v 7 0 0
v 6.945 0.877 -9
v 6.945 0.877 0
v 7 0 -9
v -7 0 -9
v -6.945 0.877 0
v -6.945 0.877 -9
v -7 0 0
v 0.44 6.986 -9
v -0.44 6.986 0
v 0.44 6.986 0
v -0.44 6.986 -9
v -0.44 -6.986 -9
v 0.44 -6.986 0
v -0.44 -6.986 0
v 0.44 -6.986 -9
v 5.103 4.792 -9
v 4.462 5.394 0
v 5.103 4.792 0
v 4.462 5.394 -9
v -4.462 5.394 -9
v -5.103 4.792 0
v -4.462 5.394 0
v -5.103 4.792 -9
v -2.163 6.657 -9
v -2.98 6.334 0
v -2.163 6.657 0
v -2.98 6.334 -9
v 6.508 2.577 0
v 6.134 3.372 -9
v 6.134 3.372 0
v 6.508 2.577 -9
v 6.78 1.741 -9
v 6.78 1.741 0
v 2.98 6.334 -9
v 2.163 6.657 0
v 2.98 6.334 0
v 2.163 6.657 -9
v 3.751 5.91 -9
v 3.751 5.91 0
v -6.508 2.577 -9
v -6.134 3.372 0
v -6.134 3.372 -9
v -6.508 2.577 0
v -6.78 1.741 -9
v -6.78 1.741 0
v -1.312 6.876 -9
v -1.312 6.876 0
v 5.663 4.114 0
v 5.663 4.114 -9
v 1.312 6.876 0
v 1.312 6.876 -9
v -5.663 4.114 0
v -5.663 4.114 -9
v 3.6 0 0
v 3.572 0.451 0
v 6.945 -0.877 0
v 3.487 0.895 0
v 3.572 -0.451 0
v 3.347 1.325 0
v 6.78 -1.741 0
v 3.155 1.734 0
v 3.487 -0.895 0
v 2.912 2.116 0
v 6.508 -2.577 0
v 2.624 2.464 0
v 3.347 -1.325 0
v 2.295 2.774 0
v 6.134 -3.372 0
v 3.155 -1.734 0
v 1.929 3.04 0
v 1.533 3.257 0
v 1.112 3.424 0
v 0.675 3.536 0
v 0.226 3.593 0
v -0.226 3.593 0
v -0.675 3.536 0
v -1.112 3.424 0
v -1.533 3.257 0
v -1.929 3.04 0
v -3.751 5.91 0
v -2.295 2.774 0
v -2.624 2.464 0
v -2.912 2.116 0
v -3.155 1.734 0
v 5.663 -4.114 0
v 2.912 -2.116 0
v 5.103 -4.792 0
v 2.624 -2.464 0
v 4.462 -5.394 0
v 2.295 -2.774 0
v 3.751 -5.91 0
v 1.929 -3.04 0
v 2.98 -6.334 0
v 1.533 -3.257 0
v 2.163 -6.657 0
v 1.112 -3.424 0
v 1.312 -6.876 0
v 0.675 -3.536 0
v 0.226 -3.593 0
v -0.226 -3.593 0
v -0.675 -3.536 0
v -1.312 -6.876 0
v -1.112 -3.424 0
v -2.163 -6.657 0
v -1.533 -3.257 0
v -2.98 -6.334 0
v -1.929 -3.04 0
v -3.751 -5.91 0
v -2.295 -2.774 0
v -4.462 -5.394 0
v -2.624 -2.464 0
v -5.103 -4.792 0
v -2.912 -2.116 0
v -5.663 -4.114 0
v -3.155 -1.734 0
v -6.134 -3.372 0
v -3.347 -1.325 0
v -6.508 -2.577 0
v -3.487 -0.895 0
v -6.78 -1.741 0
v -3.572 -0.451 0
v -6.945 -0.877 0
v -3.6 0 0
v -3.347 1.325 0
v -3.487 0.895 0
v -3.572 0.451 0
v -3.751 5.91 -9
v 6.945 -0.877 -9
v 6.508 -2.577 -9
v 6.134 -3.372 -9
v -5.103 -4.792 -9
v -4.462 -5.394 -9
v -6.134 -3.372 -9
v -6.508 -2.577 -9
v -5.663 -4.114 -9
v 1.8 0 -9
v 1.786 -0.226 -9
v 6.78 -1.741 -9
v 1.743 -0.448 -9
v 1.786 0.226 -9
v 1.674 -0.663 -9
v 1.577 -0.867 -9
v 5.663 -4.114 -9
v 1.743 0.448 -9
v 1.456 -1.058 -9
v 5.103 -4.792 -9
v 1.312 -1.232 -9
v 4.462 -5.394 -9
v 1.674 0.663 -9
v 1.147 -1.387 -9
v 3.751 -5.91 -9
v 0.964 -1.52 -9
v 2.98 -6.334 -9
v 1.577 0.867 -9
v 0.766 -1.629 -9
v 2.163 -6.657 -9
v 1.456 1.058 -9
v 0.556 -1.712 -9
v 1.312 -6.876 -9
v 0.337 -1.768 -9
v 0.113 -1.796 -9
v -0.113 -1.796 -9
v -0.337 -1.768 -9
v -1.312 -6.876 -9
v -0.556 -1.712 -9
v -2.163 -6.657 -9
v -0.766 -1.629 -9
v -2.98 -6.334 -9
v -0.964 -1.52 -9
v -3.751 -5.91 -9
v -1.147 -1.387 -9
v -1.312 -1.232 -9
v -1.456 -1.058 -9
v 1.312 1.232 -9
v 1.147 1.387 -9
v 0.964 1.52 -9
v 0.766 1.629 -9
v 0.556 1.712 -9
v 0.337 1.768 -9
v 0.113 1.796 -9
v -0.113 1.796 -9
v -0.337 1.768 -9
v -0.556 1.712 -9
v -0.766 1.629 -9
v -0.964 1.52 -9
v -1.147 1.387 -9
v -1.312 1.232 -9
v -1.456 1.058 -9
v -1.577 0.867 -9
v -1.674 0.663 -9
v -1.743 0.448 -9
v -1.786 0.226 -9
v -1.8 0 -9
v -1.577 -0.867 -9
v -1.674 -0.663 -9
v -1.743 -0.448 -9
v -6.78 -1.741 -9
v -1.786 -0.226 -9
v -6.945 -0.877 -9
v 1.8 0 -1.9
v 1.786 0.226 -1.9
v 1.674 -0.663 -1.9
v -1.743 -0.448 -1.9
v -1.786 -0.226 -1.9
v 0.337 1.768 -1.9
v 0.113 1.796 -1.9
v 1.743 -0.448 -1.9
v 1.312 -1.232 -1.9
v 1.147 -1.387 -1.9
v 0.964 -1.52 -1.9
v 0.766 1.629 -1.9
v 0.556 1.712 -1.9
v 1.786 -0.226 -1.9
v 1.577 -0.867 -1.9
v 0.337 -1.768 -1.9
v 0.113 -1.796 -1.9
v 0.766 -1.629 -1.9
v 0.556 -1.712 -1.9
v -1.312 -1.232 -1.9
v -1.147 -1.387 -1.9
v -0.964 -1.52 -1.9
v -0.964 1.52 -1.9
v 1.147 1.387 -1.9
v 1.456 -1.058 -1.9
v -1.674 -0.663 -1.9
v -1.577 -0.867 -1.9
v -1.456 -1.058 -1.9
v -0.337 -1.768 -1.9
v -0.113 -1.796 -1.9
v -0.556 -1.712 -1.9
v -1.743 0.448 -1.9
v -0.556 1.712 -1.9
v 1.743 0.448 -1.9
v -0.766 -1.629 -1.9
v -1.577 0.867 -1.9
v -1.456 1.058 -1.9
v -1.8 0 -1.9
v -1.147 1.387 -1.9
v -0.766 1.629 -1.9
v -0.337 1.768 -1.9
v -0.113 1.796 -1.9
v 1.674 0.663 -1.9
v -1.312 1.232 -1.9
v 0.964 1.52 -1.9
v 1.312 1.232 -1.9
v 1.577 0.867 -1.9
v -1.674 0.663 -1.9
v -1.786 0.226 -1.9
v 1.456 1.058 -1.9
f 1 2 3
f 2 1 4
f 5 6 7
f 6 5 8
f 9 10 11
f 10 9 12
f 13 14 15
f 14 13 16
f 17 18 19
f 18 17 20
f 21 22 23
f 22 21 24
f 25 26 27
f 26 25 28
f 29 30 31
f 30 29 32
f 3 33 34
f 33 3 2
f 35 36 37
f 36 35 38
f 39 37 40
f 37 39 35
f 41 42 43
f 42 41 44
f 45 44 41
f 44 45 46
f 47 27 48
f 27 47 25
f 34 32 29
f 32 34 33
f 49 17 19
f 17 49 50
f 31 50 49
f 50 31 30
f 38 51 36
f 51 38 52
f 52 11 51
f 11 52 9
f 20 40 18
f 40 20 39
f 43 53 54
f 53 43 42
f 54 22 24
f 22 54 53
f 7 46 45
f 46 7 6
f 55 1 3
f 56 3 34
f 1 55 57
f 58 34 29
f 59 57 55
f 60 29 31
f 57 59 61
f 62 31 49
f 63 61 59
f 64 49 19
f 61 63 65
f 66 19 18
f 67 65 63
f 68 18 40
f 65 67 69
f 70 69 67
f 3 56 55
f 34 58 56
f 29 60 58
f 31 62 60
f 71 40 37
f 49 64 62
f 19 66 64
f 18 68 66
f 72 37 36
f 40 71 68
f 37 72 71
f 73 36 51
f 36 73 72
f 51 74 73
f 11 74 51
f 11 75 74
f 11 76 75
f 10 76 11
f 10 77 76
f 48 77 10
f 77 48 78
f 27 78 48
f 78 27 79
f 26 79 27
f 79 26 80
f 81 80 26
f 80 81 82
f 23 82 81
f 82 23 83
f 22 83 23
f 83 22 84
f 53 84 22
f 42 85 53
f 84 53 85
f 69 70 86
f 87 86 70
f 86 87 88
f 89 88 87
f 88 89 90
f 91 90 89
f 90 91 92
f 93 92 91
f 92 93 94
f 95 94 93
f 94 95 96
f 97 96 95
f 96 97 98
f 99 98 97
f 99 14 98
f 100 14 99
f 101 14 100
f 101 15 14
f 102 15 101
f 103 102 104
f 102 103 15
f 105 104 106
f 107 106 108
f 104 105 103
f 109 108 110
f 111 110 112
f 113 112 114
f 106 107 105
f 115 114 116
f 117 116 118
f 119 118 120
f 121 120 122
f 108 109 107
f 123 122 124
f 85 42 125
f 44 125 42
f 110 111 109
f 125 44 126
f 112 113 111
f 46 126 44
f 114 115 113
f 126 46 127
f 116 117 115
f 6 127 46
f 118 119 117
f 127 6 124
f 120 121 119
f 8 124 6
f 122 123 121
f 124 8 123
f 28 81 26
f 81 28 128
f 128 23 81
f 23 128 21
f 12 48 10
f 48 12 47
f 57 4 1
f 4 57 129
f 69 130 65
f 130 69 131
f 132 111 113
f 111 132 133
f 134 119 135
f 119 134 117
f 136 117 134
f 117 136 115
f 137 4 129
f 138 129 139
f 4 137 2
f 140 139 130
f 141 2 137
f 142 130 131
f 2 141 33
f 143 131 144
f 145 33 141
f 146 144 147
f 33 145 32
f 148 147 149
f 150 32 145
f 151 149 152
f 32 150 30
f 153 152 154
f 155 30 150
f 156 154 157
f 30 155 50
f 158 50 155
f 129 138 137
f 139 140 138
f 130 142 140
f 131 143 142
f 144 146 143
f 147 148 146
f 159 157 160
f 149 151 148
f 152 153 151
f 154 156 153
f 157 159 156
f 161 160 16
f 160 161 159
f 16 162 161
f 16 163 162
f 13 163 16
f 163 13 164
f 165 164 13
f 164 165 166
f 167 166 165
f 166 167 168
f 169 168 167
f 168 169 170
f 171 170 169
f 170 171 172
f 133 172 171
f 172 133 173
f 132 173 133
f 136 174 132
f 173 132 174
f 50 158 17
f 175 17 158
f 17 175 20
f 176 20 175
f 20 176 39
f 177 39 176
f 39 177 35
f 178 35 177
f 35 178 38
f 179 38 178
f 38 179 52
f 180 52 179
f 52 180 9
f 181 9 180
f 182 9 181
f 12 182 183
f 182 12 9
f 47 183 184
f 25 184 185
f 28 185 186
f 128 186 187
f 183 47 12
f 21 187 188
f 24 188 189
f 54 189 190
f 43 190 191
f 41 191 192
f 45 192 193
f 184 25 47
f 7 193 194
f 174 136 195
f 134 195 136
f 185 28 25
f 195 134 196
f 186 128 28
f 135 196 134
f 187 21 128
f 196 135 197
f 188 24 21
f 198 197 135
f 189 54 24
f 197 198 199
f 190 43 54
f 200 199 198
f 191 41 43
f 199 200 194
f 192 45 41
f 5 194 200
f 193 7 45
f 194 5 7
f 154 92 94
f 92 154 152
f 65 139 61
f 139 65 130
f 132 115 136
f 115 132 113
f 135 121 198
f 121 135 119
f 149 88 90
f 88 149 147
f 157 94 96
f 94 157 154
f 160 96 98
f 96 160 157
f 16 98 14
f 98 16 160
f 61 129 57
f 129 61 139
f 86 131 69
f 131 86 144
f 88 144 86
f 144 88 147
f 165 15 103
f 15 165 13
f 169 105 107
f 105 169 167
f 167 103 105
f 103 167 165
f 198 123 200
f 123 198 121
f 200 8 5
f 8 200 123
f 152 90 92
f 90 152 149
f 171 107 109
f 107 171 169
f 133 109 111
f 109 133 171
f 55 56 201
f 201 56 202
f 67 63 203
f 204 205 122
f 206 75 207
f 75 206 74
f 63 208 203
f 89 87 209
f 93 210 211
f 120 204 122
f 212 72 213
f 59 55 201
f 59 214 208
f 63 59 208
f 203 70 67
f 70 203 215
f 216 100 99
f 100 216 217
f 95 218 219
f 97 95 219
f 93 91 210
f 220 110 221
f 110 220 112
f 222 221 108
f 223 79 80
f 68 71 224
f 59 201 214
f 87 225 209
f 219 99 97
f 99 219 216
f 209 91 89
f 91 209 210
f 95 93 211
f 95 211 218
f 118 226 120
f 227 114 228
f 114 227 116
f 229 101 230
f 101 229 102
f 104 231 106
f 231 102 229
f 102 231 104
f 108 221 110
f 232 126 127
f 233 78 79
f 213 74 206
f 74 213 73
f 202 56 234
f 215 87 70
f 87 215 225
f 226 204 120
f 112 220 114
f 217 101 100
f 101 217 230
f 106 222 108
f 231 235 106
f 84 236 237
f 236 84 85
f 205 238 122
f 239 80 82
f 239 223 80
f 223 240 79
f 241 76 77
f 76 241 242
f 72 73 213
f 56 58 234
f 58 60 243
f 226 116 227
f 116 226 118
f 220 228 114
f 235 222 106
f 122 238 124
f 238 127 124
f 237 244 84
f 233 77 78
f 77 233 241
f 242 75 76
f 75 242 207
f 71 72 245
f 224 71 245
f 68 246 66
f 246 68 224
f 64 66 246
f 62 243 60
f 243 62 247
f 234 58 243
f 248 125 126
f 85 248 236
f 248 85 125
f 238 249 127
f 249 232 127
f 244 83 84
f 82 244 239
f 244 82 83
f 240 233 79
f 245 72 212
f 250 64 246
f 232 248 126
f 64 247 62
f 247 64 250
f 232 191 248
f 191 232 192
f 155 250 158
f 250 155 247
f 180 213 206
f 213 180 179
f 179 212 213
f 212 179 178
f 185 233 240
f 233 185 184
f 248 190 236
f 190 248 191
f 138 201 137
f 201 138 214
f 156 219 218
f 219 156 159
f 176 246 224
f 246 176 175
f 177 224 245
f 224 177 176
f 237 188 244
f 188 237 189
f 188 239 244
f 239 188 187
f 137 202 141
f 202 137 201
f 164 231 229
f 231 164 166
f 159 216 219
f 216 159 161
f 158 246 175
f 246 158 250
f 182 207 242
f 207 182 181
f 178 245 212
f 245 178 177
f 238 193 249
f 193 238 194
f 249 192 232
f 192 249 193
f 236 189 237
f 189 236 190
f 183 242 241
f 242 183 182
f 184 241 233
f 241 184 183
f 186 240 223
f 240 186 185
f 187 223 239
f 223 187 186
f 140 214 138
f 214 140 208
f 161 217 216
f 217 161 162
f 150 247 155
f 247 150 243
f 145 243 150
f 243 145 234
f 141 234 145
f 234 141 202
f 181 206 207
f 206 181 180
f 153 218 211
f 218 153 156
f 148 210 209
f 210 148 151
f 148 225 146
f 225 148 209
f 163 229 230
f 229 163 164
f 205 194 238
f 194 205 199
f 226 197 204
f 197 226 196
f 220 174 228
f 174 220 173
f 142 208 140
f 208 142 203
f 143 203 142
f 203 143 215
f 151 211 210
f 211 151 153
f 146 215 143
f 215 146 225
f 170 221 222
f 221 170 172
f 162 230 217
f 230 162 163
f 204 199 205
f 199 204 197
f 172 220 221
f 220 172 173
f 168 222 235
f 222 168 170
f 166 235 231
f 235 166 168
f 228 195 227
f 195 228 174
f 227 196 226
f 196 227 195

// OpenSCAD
$fn = 50;


difference() {
	union() {
		translate(v = [0, 0, -9.0000000000]) {
			cylinder(h = 9, r = 7.0000000000);
		}
		translate(v = [0, 0, -9.0000000000]) {
			cylinder(h = 9, r = 2.8750000000);
		}
	}
	union() {
		translate(v = [0, 0, 0]) {
			rotate(a = [0, 0, 0]) {
				difference() {
					union() {
						#translate(v = [0, 0, -9.0000000000]) {
							cylinder(h = 9, r = 1.5000000000);
						}
						#translate(v = [0, 0, -1.9000000000]) {
							cylinder(h = 1.9000000000, r1 = 1.8000000000, r2 = 3.6000000000);
						}
						#translate(v = [0, 0, -9.0000000000]) {
							cylinder(h = 9, r = 1.8000000000);
						}
						#translate(v = [0, 0, -9.0000000000]) {
							cylinder(h = 9, r = 1.5000000000);
						}
					}
					union();
				}
			}
		}
	}
}
